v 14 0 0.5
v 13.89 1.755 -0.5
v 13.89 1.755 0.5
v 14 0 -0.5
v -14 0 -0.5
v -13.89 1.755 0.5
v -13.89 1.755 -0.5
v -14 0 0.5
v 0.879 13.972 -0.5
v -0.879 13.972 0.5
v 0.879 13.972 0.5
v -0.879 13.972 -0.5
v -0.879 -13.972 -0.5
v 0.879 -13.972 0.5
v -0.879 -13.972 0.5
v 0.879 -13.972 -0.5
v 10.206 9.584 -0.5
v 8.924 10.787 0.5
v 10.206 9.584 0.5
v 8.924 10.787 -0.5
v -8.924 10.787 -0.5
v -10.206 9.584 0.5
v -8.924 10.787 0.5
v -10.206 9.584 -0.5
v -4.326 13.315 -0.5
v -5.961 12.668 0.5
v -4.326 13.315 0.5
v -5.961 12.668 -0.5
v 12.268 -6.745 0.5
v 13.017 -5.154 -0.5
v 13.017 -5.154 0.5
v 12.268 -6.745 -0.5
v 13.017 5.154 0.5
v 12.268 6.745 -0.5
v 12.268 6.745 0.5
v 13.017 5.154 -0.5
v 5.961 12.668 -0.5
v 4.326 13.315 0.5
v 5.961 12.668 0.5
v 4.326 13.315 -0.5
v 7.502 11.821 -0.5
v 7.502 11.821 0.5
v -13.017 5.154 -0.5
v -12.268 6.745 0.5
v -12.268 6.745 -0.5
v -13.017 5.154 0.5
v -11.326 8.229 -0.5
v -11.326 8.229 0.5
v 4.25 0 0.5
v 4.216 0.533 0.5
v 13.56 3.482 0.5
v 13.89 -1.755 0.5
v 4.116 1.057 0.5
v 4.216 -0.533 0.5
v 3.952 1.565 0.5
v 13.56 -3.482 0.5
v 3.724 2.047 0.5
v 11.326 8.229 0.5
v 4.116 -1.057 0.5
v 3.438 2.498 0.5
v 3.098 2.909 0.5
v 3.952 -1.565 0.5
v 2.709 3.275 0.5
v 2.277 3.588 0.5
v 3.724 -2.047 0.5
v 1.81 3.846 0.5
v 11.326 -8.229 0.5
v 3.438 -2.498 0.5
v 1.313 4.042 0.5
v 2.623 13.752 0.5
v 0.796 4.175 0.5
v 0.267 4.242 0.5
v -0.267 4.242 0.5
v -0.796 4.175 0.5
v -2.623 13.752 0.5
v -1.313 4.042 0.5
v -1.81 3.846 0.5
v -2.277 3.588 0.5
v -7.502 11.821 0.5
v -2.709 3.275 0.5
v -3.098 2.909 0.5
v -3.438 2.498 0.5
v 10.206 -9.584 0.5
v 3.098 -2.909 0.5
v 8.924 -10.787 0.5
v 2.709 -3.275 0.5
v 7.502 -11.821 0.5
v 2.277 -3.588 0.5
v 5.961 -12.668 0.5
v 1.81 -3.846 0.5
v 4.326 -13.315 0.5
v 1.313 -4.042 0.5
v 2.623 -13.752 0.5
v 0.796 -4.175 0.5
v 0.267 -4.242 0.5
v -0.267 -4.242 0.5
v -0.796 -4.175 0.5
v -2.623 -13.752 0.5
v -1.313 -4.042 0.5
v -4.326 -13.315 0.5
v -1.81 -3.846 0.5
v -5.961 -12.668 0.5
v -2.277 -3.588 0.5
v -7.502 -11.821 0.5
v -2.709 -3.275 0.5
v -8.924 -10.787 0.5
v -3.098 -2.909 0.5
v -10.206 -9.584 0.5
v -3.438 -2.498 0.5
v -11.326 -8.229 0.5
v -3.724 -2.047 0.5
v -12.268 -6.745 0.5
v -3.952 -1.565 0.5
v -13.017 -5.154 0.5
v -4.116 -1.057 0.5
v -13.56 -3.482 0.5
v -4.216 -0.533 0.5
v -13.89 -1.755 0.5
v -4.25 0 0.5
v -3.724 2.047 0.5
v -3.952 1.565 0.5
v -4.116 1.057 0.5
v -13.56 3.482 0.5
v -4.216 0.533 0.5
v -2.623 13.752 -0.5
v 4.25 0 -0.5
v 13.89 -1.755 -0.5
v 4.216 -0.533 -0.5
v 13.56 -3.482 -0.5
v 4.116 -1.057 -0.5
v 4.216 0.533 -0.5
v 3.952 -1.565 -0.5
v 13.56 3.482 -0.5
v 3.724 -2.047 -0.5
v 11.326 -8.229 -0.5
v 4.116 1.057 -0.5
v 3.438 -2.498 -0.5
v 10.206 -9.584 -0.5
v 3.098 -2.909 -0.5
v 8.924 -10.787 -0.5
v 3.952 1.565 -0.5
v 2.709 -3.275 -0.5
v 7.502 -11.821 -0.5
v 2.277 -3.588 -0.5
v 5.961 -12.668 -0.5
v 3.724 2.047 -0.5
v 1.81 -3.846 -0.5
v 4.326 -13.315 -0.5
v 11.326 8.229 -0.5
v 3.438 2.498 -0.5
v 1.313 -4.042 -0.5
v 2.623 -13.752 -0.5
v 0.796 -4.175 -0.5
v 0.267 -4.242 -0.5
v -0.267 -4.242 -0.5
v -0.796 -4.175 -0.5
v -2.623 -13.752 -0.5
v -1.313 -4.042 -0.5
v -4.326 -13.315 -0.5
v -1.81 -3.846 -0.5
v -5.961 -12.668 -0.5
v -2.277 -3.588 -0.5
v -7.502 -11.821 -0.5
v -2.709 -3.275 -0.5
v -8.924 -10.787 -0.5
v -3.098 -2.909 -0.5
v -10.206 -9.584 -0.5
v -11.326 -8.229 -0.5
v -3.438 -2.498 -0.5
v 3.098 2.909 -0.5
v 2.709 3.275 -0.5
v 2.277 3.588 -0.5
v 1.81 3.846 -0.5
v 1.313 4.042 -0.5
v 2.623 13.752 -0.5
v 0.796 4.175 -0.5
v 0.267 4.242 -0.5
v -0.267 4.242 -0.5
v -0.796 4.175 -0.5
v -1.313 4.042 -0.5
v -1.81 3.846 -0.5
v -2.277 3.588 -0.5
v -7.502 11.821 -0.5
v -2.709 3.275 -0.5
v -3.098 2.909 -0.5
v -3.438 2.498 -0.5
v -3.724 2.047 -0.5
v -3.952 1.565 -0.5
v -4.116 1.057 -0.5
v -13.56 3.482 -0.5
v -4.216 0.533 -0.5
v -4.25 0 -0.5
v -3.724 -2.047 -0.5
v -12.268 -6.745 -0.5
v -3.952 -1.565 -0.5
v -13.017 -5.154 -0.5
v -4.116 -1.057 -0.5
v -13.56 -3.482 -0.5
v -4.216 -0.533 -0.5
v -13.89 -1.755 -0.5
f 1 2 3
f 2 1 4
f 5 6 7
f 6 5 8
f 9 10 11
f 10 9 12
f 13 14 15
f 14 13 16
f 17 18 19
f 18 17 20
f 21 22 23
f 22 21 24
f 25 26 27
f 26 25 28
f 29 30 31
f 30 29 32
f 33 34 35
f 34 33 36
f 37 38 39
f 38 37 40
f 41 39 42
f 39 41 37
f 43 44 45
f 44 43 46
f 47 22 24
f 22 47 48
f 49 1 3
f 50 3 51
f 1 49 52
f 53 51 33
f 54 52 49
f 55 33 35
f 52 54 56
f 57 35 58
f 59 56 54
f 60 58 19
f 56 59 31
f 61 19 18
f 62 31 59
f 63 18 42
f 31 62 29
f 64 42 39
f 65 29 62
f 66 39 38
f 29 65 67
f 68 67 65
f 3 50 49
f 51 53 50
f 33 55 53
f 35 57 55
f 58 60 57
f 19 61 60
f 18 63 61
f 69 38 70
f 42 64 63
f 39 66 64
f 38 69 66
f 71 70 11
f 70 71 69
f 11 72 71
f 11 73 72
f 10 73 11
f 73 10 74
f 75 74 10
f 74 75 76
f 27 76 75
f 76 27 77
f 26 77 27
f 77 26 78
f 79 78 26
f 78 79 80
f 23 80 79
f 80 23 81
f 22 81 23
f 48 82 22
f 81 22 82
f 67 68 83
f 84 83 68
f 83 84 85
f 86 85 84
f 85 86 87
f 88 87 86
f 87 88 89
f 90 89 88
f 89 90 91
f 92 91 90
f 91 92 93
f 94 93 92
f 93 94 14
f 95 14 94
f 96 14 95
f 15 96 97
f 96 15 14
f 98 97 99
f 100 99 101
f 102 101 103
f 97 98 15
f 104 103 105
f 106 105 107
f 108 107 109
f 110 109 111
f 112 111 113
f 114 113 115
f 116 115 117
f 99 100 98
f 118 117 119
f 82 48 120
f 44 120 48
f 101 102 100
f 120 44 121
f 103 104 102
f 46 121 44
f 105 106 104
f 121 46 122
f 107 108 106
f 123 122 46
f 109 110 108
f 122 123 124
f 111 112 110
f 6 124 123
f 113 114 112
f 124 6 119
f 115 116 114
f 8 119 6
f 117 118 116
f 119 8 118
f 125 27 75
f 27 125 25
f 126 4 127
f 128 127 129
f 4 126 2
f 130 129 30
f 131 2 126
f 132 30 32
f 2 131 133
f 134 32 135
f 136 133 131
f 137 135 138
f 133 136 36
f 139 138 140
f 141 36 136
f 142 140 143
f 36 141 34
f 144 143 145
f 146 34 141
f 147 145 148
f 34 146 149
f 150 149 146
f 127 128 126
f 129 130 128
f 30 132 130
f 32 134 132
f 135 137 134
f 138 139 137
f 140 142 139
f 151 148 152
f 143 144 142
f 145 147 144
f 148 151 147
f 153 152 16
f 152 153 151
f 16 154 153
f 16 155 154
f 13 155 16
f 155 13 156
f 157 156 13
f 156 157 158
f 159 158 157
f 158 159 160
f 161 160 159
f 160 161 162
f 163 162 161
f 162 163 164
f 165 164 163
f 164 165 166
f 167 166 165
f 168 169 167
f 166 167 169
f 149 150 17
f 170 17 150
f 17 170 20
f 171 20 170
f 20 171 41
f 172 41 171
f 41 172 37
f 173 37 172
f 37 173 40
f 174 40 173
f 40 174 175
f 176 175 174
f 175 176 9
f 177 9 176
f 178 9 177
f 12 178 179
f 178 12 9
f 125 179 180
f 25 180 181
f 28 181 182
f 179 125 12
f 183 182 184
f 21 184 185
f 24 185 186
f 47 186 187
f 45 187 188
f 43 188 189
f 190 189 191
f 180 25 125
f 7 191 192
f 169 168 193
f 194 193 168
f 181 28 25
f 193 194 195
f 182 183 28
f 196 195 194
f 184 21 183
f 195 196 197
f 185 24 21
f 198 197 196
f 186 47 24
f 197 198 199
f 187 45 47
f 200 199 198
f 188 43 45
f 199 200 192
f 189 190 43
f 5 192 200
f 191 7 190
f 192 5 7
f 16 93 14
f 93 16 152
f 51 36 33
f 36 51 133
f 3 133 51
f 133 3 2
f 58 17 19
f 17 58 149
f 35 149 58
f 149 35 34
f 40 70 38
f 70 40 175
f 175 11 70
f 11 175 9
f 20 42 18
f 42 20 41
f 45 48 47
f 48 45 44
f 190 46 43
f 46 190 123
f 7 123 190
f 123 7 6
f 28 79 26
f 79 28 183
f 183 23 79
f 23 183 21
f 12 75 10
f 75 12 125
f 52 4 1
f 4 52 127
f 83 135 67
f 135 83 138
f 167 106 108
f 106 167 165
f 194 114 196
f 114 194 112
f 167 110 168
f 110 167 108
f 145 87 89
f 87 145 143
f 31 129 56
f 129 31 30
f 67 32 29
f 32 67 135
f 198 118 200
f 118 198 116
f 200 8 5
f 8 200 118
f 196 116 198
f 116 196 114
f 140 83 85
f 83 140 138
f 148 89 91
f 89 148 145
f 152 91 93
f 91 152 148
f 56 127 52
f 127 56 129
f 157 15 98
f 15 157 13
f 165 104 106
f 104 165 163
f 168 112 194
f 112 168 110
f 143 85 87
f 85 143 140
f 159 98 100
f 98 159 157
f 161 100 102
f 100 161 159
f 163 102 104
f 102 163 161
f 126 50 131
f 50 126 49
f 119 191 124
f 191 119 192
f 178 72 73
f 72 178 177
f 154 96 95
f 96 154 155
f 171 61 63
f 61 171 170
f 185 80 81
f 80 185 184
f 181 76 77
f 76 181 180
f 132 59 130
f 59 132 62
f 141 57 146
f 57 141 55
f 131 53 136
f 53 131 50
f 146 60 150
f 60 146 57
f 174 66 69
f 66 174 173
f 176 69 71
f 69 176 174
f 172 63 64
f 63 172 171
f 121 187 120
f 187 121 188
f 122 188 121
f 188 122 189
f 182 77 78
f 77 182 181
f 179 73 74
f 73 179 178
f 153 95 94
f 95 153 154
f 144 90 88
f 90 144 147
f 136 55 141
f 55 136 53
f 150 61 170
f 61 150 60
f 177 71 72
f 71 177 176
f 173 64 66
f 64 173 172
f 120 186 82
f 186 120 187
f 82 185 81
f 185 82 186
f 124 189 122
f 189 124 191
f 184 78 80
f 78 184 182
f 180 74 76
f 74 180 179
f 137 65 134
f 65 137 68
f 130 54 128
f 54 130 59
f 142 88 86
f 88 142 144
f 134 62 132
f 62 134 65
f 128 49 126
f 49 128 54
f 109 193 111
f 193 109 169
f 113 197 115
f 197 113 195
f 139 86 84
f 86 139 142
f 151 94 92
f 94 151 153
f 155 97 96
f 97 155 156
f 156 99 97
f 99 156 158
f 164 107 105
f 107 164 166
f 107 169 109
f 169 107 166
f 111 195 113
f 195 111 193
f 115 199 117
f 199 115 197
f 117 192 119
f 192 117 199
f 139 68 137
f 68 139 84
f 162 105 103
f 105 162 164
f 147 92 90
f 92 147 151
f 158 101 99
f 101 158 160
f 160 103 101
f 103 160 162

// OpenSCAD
$fn = 50;


difference() {
	union() {
		translate(v = [0, 0, -0.5000000000]) {
			cylinder(h = 1, r = 14.0000000000);
		}
	}
	union() {
		translate(v = [0, 0, -100.0000000000]) {
			cylinder(h = 200, r = 4.2500000000);
		}
	}
}
